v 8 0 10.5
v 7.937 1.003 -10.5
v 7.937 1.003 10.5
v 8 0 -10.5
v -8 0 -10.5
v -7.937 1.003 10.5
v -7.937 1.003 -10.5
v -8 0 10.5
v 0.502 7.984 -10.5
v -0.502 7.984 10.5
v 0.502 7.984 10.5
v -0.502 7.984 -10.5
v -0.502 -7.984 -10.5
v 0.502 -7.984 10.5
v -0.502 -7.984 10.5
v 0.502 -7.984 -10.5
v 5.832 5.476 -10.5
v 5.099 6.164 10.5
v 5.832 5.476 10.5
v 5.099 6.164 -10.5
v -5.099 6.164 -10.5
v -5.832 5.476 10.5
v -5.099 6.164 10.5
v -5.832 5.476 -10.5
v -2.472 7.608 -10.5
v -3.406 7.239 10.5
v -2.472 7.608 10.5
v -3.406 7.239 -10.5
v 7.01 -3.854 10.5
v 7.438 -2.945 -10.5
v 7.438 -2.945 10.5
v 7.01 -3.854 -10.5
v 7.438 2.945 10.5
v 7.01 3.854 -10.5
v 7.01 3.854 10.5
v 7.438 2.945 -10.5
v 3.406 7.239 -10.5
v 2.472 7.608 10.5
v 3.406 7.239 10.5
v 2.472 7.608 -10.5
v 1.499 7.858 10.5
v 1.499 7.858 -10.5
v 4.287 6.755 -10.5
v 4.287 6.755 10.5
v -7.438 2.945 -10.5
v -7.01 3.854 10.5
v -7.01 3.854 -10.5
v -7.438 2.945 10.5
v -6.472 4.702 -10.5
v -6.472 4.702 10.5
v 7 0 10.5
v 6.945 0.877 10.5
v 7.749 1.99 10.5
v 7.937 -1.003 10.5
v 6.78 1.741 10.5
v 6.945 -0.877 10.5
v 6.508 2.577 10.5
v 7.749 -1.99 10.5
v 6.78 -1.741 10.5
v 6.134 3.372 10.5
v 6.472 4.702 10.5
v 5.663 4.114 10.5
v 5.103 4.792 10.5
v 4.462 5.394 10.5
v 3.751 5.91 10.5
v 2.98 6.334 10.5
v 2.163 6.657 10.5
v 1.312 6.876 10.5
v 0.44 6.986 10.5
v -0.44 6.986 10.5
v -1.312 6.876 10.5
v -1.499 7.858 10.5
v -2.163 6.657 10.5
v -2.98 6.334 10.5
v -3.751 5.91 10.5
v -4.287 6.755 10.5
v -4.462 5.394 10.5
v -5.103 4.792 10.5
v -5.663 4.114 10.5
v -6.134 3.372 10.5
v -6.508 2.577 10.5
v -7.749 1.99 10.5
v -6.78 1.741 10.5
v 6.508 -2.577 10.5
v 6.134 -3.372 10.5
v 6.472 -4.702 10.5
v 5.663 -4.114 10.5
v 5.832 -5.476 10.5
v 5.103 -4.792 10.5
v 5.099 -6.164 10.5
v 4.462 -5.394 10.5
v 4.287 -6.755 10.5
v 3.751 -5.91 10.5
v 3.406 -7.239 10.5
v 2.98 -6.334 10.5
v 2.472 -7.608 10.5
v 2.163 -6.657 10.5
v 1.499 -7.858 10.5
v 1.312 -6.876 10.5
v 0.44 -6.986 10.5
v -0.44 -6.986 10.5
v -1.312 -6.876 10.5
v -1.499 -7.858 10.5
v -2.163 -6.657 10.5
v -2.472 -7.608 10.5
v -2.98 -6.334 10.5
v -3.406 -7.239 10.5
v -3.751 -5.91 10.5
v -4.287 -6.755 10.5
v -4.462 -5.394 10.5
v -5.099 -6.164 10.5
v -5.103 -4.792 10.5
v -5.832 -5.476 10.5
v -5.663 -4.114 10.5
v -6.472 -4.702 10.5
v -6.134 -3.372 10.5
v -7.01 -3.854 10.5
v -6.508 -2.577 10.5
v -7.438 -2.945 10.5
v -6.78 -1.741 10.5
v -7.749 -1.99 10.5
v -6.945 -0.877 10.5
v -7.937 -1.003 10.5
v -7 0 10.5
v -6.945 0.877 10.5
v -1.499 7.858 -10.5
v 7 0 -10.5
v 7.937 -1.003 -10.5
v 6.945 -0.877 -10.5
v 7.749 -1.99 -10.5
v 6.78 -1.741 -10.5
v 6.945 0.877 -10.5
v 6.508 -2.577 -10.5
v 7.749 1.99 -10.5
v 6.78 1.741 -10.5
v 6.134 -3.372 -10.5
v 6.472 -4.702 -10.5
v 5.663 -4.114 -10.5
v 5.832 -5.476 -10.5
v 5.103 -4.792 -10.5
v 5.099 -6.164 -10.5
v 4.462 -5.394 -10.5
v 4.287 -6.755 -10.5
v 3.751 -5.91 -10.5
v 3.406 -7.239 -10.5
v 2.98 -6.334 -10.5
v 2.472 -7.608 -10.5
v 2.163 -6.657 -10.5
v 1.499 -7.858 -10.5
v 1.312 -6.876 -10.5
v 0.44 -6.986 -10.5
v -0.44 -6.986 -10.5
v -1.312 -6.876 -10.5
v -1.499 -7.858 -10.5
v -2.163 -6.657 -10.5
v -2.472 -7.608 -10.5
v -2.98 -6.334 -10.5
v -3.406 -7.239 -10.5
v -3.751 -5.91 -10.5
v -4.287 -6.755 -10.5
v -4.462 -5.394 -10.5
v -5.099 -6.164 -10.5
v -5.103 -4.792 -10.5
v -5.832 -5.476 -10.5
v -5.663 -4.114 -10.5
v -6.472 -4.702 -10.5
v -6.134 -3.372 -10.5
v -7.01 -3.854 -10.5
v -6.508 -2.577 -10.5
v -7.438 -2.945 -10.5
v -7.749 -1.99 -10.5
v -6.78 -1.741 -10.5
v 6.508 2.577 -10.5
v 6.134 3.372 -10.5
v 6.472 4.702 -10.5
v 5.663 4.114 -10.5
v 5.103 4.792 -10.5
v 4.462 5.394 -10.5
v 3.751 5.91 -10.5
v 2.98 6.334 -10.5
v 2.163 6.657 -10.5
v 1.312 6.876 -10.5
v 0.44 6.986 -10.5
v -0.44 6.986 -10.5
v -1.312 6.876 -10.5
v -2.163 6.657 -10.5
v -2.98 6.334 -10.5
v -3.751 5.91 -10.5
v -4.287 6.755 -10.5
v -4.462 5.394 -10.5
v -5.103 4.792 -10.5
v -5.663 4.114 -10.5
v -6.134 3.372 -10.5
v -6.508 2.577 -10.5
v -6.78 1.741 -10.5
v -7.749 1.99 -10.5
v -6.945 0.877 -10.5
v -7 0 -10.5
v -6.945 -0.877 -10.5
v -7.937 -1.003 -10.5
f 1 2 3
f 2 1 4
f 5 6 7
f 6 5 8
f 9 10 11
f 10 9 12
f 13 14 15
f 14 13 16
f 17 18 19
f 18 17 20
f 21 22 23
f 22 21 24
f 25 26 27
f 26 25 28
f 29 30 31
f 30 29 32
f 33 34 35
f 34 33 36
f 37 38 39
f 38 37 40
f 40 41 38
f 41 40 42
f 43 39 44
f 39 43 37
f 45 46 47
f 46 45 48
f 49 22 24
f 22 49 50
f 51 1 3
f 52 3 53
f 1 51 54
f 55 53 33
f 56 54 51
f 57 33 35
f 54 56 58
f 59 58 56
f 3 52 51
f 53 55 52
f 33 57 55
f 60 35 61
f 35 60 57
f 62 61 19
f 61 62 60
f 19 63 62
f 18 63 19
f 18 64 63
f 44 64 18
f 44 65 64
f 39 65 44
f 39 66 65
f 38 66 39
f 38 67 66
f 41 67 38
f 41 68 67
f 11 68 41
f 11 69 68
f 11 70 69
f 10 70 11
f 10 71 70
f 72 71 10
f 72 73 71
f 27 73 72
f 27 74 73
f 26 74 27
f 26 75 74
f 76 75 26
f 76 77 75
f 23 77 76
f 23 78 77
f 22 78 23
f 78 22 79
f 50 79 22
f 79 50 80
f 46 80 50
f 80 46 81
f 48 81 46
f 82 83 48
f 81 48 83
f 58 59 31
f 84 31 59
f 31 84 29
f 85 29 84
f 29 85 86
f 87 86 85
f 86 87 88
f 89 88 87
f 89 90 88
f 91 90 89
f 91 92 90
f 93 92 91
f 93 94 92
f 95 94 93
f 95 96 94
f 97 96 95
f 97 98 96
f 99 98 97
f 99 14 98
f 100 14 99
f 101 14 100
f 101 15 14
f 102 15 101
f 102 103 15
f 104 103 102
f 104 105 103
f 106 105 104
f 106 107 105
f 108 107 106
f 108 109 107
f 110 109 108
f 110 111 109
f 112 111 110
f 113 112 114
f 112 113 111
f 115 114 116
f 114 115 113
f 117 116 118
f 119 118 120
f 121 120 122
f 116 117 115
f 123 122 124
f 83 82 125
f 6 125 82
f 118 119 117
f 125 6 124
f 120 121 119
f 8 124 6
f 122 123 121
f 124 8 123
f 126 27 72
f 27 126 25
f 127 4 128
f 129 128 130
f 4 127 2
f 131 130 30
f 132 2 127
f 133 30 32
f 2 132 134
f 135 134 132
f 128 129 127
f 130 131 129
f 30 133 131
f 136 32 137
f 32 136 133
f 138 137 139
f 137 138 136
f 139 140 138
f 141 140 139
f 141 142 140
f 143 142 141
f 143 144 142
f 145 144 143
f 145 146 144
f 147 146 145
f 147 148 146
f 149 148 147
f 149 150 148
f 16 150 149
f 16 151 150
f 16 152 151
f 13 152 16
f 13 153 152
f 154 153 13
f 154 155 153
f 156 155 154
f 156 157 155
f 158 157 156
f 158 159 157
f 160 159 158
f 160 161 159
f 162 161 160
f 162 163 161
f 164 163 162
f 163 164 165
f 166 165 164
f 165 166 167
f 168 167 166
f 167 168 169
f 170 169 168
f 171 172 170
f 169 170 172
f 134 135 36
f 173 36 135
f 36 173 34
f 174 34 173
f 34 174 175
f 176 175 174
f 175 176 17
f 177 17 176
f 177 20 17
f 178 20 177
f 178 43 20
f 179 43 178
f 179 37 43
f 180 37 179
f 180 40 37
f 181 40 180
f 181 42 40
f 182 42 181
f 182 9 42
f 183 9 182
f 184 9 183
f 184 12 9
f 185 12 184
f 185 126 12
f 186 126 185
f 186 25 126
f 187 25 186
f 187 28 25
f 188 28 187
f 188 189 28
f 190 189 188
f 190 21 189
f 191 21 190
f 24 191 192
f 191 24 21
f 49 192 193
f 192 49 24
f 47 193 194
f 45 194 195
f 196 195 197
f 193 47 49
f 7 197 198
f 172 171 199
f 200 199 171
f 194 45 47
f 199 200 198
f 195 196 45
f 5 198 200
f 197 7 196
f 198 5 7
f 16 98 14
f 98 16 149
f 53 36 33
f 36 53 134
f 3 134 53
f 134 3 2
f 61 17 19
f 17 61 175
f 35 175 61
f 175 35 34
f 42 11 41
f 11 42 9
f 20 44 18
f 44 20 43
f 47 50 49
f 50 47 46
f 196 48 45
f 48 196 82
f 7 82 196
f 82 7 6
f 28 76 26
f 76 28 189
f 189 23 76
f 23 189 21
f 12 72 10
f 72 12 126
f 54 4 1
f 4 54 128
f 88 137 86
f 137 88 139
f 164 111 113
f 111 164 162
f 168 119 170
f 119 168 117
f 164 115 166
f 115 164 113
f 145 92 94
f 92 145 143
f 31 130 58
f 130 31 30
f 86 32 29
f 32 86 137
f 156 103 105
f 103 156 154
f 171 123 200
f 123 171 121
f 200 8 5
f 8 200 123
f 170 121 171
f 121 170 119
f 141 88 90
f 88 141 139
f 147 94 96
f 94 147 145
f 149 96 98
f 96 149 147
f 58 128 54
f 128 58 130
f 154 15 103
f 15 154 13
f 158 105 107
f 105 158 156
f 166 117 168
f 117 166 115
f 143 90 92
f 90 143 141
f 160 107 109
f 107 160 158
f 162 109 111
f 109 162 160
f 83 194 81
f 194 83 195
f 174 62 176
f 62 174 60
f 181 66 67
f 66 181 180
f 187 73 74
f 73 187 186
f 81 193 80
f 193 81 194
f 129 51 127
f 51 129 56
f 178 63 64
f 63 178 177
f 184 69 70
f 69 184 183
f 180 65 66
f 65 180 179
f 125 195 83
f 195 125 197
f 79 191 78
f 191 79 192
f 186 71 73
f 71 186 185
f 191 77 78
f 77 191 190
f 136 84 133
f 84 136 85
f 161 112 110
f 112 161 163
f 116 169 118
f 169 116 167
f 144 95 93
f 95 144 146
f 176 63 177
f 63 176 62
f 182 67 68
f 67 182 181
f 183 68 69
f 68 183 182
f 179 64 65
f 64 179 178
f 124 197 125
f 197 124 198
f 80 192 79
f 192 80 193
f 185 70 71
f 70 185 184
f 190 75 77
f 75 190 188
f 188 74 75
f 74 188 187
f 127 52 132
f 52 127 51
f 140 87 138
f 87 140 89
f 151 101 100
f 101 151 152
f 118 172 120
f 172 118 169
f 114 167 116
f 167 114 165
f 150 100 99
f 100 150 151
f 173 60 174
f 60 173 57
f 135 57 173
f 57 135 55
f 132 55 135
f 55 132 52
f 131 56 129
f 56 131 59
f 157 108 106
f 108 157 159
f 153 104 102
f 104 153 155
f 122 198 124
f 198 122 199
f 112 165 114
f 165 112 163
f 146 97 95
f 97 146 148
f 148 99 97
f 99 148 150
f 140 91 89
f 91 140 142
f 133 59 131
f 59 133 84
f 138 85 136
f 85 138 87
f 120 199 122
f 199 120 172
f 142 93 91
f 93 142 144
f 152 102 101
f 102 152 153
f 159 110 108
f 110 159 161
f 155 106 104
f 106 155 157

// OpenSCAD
$fn = 50;


difference() {
	union() {
		translate(v = [0, 0, -10.5000000000]) {
			cylinder(h = 21, r = 8.0000000000);
		}
	}
	union() {
		translate(v = [0, 0, -100.0000000000]) {
			cylinder(h = 200, r = 7);
		}
	}
}
